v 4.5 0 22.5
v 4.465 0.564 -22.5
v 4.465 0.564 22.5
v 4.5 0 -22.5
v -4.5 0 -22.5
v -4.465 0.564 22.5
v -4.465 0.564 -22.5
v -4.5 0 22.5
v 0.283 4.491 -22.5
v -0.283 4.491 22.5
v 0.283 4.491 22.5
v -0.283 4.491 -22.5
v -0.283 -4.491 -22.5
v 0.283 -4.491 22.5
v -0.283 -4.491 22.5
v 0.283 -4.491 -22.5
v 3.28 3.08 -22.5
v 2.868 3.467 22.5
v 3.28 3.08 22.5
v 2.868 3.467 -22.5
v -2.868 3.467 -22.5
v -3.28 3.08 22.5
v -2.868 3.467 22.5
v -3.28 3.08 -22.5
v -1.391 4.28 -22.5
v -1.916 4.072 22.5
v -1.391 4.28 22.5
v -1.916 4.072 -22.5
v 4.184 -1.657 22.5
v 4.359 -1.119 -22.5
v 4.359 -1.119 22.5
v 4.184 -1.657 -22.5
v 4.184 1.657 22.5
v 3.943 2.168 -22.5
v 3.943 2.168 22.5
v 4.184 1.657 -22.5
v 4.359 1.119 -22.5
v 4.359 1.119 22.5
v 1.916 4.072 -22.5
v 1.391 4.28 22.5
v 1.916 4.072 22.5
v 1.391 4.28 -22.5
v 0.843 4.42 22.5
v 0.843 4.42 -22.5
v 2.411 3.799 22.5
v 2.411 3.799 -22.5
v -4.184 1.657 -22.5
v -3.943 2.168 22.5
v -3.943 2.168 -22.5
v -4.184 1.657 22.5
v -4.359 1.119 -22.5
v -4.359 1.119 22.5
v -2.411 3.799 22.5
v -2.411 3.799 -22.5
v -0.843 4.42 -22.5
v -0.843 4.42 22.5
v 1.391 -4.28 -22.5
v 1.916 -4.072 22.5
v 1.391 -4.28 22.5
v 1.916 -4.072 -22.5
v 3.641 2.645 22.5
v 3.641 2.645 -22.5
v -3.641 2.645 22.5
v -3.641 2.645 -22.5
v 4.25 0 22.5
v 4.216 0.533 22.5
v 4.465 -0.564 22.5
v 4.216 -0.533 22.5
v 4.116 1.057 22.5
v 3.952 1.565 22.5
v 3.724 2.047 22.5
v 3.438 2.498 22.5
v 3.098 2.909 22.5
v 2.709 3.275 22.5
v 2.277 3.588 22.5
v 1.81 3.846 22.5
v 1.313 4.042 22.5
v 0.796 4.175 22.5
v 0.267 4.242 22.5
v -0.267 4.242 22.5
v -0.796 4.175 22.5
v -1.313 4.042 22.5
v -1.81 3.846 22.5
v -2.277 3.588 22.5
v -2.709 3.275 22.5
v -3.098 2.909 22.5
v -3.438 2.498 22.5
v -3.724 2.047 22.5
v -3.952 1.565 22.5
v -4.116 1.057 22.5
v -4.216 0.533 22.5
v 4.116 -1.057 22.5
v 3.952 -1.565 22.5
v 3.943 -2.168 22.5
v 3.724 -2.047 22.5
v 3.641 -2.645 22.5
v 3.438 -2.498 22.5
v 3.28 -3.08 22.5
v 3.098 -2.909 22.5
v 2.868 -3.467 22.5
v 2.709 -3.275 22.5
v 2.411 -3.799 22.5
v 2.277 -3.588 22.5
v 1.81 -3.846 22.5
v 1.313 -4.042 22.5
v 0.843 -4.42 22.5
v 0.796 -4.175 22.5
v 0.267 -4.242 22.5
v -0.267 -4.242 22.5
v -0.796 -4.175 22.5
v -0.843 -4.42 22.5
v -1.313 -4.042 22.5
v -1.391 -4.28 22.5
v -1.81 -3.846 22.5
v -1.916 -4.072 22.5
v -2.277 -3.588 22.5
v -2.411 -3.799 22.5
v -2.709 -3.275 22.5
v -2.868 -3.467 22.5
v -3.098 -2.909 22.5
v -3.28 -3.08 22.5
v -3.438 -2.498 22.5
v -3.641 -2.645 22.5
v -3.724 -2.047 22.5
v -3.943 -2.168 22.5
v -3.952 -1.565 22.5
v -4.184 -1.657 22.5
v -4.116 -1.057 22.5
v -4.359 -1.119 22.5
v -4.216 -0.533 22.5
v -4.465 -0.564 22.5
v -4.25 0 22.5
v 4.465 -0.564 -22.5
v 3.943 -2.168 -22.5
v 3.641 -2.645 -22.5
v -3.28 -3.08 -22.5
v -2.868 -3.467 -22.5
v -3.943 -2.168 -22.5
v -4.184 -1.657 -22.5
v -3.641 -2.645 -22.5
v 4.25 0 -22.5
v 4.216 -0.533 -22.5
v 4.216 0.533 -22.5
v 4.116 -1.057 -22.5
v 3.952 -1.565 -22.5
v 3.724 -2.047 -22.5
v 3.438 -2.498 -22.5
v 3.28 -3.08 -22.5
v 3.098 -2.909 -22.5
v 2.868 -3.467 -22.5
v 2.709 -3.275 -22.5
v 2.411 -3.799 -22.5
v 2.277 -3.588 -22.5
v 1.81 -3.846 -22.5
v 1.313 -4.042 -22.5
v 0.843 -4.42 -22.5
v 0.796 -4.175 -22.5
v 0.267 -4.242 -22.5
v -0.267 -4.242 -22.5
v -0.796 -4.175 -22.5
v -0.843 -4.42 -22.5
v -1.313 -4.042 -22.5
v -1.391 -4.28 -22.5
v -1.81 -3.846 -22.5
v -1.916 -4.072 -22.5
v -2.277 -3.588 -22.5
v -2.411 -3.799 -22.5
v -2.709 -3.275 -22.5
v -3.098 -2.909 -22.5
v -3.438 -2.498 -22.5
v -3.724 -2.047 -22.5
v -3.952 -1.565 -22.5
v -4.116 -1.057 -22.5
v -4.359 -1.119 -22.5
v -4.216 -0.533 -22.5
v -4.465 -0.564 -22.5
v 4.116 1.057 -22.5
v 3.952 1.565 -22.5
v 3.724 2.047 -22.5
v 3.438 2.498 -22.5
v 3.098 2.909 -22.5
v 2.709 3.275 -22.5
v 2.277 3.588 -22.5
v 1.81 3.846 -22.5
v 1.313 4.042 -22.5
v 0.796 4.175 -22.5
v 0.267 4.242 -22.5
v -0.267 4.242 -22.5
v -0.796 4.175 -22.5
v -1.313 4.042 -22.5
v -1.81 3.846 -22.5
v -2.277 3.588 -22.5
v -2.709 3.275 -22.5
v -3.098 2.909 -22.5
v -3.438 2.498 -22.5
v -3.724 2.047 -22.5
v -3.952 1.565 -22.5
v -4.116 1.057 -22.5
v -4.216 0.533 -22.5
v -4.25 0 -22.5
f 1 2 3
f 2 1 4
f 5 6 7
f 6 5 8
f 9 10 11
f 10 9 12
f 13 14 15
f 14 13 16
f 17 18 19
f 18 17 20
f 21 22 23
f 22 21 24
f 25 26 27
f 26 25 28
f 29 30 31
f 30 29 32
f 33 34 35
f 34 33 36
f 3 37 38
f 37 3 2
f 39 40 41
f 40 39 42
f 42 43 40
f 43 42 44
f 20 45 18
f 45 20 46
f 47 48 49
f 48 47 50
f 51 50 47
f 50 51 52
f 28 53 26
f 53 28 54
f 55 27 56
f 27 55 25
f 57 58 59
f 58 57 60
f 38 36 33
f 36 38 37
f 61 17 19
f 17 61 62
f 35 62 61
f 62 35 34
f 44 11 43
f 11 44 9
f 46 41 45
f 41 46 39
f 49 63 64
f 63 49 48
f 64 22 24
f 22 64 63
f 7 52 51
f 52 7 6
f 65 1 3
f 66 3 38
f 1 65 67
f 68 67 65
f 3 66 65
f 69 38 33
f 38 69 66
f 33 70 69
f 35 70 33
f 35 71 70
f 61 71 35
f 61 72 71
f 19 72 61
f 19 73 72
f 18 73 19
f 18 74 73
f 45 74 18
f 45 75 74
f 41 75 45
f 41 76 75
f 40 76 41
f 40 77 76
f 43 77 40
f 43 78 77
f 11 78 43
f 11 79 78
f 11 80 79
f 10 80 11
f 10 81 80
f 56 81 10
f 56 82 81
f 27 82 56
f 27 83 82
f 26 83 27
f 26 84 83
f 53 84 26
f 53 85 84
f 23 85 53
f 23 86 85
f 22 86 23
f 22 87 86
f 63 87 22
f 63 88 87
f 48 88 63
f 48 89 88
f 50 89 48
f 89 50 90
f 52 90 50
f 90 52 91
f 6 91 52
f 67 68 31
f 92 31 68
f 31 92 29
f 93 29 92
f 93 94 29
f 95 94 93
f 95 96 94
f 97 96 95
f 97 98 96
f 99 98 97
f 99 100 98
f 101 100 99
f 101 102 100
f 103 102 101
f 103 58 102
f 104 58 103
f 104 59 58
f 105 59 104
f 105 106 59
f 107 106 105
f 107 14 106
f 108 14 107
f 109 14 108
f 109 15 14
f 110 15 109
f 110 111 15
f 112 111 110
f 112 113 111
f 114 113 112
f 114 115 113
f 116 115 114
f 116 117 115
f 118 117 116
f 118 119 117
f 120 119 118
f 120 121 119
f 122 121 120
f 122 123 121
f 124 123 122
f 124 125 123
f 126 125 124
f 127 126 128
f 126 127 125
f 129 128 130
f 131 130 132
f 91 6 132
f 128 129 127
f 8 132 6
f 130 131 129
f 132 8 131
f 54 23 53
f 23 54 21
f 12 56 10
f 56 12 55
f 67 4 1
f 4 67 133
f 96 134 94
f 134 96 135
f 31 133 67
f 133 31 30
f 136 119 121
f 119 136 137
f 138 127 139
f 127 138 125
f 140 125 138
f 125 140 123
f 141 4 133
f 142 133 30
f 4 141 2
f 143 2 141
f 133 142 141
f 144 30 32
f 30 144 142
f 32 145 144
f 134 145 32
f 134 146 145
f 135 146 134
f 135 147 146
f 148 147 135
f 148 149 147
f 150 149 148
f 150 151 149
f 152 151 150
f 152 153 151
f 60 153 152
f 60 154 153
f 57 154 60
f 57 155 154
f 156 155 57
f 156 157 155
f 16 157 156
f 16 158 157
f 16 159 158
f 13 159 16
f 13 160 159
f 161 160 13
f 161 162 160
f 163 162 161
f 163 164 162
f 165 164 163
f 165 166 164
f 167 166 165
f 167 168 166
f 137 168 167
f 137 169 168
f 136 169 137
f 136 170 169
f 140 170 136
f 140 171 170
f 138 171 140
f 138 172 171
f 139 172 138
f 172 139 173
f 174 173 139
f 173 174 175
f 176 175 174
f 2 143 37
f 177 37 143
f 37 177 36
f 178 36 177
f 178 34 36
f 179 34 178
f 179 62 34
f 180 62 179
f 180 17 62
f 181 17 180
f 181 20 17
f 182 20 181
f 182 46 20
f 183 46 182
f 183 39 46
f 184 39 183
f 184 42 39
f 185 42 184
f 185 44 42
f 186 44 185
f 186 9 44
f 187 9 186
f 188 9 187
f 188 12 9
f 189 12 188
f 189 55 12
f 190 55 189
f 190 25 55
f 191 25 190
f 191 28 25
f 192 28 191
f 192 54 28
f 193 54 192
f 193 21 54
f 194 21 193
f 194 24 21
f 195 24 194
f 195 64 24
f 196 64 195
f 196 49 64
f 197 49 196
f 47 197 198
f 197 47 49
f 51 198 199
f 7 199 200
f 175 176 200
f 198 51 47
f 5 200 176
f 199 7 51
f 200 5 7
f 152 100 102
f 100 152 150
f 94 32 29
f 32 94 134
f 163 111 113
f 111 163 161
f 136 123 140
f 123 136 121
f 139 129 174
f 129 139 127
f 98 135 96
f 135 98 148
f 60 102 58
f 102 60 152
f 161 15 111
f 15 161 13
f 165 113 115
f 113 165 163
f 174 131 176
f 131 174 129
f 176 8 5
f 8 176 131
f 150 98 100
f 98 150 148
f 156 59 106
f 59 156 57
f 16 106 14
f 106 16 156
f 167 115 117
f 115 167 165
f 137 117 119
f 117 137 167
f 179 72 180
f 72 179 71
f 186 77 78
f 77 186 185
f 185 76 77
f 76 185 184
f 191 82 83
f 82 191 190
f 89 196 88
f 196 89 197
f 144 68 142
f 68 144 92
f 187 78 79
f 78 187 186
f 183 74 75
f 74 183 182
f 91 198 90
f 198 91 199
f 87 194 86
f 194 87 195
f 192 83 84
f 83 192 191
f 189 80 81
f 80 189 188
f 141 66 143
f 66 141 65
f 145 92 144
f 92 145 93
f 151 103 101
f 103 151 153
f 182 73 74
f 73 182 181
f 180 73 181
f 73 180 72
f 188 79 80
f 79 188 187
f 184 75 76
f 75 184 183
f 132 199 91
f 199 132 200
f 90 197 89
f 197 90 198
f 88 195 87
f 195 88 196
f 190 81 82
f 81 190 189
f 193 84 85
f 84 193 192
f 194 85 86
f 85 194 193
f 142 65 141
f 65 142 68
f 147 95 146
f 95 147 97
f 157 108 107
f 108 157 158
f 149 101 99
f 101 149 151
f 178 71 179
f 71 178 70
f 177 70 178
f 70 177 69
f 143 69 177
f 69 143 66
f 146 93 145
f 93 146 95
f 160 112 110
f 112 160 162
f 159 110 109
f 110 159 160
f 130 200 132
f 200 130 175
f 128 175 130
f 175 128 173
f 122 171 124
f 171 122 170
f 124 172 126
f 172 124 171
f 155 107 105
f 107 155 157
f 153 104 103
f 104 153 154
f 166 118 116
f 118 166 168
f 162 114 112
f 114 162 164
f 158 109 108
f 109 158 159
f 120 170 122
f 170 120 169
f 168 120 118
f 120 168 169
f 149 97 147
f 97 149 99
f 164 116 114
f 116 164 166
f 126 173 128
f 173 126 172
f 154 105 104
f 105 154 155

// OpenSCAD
$fn = 50;


difference() {
	union() {
		translate(v = [0, 0, -22.5000000000]) {
			cylinder(h = 45, r = 4.5000000000);
		}
	}
	union() {
		translate(v = [0, 0, -100.0000000000]) {
			cylinder(h = 200, r = 4.2500000000);
		}
	}
}
